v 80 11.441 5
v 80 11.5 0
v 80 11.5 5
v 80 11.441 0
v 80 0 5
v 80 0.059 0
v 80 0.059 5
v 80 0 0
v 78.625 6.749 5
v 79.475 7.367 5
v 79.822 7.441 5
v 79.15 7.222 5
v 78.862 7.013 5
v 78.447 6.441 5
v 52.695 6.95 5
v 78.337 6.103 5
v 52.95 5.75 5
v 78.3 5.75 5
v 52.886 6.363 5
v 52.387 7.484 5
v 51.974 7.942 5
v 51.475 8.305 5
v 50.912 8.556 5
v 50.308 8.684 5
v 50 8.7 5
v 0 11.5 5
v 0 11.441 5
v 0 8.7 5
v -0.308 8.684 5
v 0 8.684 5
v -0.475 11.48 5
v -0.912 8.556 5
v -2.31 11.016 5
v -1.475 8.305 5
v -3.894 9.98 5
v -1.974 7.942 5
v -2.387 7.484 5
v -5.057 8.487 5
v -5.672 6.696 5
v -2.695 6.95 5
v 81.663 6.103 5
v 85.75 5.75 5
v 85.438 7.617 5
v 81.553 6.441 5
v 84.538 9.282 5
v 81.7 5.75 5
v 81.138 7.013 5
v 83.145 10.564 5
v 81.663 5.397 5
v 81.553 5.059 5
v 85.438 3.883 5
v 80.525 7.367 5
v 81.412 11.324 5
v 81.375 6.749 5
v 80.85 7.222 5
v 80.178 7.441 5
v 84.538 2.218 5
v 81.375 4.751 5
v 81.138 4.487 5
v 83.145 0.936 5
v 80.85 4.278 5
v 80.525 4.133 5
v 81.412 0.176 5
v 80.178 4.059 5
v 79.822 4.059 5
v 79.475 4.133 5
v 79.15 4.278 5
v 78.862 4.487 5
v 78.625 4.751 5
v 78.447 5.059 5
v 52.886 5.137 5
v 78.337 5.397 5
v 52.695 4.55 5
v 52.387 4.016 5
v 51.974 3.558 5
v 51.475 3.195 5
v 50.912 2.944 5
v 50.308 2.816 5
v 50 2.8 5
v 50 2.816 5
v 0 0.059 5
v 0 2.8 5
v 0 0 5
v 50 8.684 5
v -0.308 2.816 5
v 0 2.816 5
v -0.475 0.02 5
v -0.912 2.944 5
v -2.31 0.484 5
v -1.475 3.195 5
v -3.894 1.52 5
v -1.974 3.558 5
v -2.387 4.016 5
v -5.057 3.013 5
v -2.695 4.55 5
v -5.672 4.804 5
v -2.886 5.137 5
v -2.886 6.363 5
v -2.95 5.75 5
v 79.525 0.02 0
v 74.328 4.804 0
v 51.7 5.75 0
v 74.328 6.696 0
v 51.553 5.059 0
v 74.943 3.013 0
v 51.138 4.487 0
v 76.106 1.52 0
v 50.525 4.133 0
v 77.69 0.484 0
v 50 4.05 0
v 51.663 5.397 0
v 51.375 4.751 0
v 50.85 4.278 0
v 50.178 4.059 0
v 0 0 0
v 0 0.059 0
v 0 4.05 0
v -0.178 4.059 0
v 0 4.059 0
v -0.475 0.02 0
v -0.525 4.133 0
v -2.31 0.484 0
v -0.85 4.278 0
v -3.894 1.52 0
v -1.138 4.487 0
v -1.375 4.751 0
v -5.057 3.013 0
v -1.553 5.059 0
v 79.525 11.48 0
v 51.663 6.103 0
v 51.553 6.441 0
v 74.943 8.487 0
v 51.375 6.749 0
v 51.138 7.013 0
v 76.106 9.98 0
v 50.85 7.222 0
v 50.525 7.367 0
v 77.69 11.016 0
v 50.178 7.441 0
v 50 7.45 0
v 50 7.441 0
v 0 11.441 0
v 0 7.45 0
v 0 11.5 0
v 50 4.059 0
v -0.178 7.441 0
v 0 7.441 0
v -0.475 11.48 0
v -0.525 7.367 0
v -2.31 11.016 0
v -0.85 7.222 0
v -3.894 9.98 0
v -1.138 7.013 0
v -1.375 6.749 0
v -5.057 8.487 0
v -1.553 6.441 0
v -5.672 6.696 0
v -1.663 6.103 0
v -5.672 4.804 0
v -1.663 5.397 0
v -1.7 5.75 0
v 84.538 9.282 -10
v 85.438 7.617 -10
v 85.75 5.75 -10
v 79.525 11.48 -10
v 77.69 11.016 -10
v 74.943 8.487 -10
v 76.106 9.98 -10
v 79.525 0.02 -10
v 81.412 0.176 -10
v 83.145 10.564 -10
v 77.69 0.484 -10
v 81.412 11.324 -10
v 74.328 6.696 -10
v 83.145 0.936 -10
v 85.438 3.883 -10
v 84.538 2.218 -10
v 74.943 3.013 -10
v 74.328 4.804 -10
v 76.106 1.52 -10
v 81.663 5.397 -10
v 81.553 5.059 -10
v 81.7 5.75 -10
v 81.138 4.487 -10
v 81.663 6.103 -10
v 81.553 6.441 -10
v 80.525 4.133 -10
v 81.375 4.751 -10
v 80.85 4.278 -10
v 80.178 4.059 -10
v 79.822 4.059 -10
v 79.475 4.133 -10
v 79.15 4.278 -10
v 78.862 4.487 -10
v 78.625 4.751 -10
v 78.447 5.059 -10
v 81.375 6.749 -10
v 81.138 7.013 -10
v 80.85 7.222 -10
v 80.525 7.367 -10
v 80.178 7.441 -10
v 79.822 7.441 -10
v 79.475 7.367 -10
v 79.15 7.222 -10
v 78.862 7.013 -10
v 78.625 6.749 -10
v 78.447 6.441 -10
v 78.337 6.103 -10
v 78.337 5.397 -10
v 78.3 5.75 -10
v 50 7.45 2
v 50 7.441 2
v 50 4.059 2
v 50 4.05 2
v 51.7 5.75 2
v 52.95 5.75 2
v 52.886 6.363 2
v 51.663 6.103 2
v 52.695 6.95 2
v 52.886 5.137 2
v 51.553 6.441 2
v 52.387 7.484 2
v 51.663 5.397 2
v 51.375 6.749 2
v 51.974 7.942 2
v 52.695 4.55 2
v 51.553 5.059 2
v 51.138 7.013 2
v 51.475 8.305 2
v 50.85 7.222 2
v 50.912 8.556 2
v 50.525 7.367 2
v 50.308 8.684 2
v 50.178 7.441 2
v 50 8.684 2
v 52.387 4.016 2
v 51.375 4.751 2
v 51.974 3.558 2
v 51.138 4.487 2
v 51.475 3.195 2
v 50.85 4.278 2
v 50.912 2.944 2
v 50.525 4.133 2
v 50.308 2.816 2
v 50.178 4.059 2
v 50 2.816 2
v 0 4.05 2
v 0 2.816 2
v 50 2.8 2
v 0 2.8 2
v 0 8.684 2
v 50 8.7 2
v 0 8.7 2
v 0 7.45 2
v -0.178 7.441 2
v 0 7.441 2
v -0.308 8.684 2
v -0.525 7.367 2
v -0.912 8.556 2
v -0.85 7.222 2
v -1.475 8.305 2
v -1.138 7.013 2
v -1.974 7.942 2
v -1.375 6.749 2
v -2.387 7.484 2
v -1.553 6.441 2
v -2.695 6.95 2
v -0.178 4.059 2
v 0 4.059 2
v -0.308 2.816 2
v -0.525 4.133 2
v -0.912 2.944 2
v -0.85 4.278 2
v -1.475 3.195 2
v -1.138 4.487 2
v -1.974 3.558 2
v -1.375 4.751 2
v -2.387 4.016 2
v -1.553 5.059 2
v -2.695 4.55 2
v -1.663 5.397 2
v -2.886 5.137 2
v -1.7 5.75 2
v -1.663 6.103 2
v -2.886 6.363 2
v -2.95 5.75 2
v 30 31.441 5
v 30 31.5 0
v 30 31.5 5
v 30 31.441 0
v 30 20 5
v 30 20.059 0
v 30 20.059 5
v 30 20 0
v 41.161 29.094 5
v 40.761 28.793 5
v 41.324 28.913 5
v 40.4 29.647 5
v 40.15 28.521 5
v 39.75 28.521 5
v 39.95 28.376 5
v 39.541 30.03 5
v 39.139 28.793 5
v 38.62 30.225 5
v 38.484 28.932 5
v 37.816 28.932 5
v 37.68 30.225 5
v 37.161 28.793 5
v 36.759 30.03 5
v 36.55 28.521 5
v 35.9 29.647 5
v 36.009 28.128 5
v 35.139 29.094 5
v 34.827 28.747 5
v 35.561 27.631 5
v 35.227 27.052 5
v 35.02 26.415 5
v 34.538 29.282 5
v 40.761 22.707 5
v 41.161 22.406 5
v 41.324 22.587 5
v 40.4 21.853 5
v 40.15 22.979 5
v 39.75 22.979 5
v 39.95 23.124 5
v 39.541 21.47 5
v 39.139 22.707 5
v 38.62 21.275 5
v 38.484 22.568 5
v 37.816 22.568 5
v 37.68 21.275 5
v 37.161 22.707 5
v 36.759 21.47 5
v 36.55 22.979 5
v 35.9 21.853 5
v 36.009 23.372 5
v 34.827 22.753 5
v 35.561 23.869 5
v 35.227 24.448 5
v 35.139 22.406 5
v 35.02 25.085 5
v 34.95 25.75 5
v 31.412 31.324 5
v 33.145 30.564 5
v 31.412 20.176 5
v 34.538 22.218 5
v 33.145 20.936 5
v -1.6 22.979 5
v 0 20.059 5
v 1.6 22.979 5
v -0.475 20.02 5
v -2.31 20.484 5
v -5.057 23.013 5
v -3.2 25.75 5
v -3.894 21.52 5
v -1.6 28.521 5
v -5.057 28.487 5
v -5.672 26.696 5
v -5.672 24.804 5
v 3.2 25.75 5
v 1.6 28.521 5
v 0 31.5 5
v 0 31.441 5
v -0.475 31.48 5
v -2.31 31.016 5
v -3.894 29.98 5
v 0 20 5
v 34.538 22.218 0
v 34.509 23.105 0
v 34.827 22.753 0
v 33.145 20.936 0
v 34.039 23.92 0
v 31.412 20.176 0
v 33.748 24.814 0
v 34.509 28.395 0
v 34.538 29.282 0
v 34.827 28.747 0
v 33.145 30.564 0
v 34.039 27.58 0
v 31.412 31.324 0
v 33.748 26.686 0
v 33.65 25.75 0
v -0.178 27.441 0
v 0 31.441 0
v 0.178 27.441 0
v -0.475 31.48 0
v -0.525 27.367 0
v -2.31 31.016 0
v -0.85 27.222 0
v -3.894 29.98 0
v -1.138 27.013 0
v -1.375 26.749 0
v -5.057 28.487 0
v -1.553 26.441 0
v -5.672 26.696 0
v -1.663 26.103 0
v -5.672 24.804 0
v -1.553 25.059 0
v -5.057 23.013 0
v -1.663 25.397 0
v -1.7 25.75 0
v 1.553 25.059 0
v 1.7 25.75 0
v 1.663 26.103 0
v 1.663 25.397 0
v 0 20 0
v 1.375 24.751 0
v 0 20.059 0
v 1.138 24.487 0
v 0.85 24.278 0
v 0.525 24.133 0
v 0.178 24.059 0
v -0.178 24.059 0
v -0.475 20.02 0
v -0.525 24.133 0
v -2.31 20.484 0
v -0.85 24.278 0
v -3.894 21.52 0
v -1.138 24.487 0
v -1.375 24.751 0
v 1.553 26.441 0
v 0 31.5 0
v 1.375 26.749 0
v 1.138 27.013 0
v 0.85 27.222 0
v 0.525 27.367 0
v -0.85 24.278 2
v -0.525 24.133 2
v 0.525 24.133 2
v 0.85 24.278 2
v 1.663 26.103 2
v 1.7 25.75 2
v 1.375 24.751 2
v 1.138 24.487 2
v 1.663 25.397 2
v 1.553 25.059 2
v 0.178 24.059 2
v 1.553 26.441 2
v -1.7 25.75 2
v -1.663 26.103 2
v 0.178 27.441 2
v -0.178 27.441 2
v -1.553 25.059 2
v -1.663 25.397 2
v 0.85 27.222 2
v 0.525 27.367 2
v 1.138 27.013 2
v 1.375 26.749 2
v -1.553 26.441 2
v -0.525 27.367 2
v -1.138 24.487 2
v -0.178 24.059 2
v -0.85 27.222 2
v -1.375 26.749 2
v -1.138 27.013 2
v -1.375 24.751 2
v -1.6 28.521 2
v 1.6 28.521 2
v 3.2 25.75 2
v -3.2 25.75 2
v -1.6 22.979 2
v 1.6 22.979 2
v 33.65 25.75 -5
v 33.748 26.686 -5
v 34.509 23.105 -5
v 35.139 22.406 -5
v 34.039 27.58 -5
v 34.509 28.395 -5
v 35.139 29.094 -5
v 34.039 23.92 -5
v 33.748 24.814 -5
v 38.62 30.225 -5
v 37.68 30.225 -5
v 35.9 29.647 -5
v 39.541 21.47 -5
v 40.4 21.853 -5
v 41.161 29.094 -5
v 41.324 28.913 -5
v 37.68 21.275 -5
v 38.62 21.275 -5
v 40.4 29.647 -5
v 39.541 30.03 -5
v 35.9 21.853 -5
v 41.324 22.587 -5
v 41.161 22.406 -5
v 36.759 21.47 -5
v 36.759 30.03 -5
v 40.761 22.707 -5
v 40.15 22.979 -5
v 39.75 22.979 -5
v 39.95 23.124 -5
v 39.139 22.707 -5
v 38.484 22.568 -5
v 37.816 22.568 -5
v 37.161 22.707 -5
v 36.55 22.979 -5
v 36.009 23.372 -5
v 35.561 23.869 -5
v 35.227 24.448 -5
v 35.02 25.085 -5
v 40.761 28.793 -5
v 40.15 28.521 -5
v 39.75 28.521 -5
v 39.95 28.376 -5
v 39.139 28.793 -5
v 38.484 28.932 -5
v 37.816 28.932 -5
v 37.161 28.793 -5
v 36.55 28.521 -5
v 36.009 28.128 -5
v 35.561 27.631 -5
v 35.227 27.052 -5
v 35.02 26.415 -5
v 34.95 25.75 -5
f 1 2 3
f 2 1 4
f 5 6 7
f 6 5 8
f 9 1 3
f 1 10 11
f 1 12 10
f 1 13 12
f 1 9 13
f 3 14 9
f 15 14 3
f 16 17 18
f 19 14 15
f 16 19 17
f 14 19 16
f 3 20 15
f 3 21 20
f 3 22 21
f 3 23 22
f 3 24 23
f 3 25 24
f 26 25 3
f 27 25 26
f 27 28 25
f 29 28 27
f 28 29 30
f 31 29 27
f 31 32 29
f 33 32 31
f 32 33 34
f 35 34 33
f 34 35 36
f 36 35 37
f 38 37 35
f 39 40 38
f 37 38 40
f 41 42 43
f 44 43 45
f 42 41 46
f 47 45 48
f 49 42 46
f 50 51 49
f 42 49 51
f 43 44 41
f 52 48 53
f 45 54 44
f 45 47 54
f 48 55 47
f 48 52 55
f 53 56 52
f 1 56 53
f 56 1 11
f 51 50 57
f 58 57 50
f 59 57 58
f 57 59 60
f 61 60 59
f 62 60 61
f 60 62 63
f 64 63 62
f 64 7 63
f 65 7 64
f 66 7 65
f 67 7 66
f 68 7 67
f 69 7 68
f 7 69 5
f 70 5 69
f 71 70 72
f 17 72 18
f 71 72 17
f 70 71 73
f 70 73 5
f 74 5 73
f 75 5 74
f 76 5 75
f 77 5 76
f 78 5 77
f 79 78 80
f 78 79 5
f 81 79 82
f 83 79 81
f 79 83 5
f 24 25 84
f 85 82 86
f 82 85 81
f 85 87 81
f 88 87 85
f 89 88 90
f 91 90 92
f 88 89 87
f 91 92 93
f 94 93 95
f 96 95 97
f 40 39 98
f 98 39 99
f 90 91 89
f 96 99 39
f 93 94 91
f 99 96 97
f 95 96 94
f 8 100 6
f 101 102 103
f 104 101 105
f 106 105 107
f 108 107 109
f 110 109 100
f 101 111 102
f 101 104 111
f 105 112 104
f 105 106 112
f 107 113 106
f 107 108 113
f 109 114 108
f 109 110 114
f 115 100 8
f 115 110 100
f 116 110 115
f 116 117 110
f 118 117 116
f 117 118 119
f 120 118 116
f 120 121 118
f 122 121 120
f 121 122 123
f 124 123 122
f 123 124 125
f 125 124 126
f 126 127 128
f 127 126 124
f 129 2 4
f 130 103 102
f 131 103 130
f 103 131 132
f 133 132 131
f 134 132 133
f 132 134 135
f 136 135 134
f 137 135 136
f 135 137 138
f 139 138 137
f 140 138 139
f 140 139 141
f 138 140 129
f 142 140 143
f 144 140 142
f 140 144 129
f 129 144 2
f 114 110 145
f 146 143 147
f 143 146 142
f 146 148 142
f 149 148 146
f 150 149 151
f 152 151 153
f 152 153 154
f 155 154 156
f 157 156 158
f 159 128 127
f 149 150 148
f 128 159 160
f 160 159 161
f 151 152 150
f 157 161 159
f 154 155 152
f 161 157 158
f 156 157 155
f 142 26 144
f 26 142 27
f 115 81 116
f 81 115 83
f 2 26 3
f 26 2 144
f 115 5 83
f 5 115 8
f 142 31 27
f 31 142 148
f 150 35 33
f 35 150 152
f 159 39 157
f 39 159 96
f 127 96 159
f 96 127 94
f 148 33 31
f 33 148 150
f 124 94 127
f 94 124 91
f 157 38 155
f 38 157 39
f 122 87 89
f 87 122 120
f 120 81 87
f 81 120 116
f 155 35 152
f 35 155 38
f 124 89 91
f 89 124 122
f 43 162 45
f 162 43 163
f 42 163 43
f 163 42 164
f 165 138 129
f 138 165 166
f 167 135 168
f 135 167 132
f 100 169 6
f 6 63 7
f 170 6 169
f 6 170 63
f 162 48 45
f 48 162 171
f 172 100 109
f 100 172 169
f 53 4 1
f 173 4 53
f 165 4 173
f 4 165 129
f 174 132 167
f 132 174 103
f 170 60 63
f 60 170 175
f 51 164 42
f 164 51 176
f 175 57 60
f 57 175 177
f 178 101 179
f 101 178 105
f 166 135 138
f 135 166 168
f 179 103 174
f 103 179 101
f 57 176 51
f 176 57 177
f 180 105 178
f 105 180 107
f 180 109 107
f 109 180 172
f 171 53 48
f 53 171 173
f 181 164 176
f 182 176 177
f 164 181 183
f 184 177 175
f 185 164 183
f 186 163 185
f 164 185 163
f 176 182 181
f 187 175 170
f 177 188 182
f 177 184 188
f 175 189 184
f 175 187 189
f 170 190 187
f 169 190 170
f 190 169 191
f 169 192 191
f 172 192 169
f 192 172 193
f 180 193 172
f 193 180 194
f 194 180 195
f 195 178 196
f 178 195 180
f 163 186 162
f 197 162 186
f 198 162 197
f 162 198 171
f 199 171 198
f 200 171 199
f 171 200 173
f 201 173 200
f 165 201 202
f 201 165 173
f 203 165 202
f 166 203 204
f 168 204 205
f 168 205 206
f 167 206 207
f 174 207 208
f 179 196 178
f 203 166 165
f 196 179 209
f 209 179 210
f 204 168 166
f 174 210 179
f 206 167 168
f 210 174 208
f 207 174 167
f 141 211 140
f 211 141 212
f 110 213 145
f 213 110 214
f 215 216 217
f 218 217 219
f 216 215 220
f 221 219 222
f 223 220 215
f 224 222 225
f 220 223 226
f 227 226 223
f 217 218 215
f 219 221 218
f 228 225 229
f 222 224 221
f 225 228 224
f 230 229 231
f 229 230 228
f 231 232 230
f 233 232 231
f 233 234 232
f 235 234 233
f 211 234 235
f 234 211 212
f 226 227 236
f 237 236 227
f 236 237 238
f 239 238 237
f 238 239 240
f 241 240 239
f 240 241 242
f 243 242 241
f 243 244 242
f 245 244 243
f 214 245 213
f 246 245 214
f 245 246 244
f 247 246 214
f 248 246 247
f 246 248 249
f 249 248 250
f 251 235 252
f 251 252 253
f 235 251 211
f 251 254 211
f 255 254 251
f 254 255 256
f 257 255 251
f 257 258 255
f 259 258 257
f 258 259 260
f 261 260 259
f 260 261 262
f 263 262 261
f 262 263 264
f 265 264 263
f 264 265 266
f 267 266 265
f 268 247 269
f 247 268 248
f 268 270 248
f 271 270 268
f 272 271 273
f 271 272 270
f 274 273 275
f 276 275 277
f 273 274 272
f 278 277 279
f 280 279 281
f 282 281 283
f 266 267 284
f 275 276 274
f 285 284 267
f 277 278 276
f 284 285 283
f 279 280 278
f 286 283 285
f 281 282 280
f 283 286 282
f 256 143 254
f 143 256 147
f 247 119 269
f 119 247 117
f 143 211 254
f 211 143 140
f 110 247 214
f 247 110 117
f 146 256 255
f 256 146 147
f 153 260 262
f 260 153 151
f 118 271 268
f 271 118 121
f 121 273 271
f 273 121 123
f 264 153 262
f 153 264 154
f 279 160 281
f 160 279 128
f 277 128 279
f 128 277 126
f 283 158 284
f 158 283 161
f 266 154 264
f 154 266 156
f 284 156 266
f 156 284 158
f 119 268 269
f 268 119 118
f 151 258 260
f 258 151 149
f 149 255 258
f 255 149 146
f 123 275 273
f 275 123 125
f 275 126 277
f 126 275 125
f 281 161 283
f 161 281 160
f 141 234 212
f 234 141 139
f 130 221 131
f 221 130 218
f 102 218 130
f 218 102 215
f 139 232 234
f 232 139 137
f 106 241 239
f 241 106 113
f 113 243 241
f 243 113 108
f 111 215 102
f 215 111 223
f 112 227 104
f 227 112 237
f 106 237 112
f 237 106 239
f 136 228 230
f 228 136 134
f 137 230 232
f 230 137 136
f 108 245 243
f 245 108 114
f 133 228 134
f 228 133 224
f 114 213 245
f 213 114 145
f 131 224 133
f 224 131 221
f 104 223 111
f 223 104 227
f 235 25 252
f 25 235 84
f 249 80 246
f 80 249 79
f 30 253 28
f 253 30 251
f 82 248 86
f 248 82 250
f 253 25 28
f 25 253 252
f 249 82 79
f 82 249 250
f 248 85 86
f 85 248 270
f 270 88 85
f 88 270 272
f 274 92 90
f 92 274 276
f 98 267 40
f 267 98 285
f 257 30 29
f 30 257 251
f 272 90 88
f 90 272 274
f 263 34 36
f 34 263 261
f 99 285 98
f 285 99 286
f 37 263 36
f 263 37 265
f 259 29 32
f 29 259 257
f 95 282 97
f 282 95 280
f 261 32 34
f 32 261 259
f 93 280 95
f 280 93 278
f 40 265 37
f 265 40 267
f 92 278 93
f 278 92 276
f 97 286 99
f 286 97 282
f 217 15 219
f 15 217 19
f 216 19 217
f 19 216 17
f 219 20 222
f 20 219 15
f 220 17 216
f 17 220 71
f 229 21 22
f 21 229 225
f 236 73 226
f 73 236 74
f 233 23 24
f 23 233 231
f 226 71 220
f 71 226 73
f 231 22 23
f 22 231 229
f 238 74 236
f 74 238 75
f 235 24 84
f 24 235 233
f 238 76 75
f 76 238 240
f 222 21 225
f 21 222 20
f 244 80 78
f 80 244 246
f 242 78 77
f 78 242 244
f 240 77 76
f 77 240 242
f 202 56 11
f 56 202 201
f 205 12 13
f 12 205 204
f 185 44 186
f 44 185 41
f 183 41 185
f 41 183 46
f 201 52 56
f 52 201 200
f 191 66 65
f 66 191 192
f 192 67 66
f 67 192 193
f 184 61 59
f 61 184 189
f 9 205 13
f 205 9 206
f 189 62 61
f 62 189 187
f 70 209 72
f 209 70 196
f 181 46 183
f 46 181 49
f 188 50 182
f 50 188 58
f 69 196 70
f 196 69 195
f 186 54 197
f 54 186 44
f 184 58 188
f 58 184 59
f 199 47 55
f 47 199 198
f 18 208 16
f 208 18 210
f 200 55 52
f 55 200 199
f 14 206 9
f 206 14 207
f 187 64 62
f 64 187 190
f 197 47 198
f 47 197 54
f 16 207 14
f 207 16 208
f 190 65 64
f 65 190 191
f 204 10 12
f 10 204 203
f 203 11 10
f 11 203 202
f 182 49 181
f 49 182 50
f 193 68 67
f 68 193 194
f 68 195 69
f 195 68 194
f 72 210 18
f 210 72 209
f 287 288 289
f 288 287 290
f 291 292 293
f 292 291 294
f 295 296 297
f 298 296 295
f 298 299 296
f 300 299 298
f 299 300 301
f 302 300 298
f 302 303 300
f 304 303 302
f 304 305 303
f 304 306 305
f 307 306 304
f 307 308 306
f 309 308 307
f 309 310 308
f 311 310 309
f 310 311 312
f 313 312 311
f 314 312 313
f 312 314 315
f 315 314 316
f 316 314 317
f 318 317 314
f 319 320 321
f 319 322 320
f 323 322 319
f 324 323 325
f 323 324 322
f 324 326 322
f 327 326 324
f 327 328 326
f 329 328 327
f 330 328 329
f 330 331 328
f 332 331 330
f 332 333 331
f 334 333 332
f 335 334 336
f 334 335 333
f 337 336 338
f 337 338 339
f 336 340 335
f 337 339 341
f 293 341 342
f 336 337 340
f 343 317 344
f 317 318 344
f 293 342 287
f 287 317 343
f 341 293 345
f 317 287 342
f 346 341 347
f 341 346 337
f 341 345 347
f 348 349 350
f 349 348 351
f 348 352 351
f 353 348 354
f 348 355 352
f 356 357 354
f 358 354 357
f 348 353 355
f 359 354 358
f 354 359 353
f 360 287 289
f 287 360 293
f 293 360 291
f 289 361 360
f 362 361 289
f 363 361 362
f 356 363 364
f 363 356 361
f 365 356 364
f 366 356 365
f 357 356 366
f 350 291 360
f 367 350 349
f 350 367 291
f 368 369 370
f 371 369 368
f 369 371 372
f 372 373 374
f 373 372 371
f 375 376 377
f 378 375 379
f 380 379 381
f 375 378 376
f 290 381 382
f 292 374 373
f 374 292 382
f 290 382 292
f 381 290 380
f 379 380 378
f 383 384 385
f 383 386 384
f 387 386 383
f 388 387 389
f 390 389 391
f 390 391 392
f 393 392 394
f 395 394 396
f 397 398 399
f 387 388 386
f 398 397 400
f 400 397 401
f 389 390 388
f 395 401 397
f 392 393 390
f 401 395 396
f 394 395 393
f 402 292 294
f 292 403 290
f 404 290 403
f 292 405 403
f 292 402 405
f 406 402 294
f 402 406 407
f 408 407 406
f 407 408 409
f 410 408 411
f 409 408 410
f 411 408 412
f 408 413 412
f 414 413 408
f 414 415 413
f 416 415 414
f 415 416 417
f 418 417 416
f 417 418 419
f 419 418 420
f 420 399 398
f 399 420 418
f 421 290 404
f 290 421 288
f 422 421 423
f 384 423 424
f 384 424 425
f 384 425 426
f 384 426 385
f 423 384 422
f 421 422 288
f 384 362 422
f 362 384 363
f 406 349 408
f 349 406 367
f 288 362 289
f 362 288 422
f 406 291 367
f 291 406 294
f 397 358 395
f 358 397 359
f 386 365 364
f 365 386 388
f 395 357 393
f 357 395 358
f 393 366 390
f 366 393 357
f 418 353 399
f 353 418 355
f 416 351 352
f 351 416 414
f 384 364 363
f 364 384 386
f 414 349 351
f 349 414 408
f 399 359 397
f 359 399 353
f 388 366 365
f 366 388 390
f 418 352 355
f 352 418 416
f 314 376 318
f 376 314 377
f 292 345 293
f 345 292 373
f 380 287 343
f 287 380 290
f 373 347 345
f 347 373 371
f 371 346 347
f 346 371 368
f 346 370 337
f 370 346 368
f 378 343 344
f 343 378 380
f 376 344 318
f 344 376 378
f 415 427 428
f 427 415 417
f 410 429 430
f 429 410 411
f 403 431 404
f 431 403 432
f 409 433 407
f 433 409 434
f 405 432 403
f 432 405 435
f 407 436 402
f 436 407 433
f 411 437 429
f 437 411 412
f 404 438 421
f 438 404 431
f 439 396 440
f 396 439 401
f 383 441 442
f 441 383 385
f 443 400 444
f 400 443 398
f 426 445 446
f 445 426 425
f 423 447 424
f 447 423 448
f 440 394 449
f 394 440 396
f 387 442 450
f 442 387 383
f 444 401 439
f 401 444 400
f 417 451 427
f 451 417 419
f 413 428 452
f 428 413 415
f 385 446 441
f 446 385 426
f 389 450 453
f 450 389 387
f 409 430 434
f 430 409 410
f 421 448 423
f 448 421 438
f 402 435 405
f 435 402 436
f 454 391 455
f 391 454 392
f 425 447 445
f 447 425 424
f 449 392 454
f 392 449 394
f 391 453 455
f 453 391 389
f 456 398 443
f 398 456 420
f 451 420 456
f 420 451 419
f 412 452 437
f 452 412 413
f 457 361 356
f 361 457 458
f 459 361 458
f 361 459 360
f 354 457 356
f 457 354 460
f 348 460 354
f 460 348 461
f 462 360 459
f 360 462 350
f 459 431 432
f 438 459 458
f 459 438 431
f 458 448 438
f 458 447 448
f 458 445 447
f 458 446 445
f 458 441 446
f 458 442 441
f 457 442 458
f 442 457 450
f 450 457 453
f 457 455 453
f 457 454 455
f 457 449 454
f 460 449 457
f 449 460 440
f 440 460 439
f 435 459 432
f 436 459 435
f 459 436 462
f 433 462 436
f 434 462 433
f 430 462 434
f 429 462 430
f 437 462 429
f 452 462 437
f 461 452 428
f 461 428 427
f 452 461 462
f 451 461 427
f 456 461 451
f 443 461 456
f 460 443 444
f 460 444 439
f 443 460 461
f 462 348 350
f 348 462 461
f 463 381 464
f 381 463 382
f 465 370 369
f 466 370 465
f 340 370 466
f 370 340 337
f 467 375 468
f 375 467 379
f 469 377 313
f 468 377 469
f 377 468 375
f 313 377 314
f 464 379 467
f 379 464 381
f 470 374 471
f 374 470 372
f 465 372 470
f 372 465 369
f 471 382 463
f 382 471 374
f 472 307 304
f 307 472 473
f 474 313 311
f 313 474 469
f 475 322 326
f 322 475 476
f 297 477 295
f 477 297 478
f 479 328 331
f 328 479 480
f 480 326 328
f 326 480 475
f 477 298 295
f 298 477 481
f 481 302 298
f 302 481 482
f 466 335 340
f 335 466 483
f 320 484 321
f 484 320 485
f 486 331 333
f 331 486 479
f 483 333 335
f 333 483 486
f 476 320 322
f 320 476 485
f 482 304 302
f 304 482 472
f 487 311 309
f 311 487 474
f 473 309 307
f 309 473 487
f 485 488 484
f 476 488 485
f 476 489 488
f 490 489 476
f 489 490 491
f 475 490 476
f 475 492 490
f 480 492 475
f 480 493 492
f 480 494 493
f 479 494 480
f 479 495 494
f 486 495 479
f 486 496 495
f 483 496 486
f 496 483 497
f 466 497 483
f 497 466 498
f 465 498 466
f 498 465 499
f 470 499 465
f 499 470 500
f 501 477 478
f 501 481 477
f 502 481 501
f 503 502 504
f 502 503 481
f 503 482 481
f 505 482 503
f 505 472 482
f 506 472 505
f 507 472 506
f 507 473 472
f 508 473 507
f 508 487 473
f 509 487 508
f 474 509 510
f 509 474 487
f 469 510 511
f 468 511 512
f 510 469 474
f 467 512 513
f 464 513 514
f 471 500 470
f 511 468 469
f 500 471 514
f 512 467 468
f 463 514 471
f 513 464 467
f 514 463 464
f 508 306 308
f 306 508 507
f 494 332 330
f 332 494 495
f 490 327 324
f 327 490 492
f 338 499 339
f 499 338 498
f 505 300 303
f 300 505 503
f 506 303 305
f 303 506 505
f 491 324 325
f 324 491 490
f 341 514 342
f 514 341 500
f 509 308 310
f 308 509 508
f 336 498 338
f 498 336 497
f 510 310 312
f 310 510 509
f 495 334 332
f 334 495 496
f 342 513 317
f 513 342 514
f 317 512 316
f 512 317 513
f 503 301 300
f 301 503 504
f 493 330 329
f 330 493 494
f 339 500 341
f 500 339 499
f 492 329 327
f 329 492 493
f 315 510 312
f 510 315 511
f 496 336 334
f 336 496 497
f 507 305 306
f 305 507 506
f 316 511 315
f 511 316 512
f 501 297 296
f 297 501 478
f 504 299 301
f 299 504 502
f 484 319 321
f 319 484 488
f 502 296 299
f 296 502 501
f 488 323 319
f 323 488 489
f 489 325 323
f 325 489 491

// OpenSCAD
// Sample holder for OpenFlexure Block Stage. DoMB SPIM
// Borys Olifirov 2024

FDM_offset = 0.2;

holder_screw_d = 3;
holder_screw_hd = 5.5;
holder_nut_size = 6;

holder_base_l = 30;
holder_base_screw_l = 50;
holder_base_w = holder_screw_hd+3*2;

holder_arm_l = 30;
holder_arm_w = holder_screw_hd + 3*2;

syringe_d = 6;
clip_wall = 1.5;


module HolderBase() {
    difference() {
        // main_body
        union() {
            cube([holder_base_l+holder_base_screw_l,holder_base_w,5]);
            translate([0,holder_base_w/2,0])
                cylinder(d = holder_base_w, h = 5);
            translate([holder_base_l+holder_base_screw_l,holder_base_w/2,-10])
                cylinder(d = holder_base_w, h = 15);
        }
        
        // bottom hole
        union() {
            translate([0,holder_base_w/2-(3+2*FDM_offset)/2,0])
                cube([holder_base_screw_l,3+2*FDM_offset,2]);
            translate([0,holder_base_w/2,0])
                cylinder(d = 3+2*FDM_offset, h = 2, $fn = 30);
            translate([holder_base_screw_l,holder_base_w/2,0])
                cylinder(d = 3+2*FDM_offset, h = 2, $fn = 30);
        }
        
        // up hole
        union() {
            translate([0,holder_base_w/2-(5.5+2*FDM_offset)/2,2])
                cube([holder_base_screw_l,holder_screw_hd+2*FDM_offset,3]);
            translate([0,holder_base_w/2,2])
                cylinder(d = holder_screw_hd+2*FDM_offset, h = 3, $fn = 30);
            translate([holder_base_screw_l,holder_base_w/2,2])
                cylinder(d = holder_screw_hd+2*FDM_offset, h = 3, $fn = 30);
        }
        
        // screw hole
        translate([holder_base_l+50,holder_base_w/2,-10])
            cylinder(d = holder_screw_d+2*FDM_offset, h = 15, $fn = 30);
        
    }
}


module HolderClipArm() {
    clip_offset = 0.4;
    union() {
        // main body
        difference() {
            union() {
                cube([holder_arm_l,holder_base_w,5]);
                translate([0,holder_arm_w/2,0])
                    cylinder(d = holder_base_w, h = 5);
                translate([holder_arm_l,holder_arm_w/2,0])
                    cylinder(d = holder_base_w, h = 5);
            }
            translate([0,holder_arm_w/2,0])
                cylinder(d = holder_screw_d+2*FDM_offset, h = 15, $fn = 30);
            translate([0,holder_arm_w/2,2])
                cylinder(d = holder_nut_size+2*FDM_offset, h = 10, $fn = 6);
            
            translate([holder_arm_l+holder_base_w/2+syringe_d*clip_offset,
                       holder_arm_w/2,
                       0])  // clip contact surface
                cylinder(d = syringe_d+2*clip_wall, h = 10, $fn=30);
        }
    
        // syringe clip
        difference() {
            translate([holder_arm_l+holder_base_w/2+syringe_d*clip_offset,
                       holder_arm_w/2,
                       -5])
                cylinder(d = syringe_d+2*clip_wall, h = 10, $fn=30);
            translate([holder_arm_l+holder_base_w/2+syringe_d*clip_offset,
                       holder_arm_w/2,
                       -5])
                cylinder(d = syringe_d+2*FDM_offset, h = 10, $fn=30);
            translate([holder_arm_l+holder_base_w/2+syringe_d,
                       holder_arm_w/2,
                       -5])
                cylinder(d = syringe_d+2*FDM_offset, h = 10, $fn=30);
        }
    }
}


HolderBase();

translate([0,20,0])
HolderClipArm();
